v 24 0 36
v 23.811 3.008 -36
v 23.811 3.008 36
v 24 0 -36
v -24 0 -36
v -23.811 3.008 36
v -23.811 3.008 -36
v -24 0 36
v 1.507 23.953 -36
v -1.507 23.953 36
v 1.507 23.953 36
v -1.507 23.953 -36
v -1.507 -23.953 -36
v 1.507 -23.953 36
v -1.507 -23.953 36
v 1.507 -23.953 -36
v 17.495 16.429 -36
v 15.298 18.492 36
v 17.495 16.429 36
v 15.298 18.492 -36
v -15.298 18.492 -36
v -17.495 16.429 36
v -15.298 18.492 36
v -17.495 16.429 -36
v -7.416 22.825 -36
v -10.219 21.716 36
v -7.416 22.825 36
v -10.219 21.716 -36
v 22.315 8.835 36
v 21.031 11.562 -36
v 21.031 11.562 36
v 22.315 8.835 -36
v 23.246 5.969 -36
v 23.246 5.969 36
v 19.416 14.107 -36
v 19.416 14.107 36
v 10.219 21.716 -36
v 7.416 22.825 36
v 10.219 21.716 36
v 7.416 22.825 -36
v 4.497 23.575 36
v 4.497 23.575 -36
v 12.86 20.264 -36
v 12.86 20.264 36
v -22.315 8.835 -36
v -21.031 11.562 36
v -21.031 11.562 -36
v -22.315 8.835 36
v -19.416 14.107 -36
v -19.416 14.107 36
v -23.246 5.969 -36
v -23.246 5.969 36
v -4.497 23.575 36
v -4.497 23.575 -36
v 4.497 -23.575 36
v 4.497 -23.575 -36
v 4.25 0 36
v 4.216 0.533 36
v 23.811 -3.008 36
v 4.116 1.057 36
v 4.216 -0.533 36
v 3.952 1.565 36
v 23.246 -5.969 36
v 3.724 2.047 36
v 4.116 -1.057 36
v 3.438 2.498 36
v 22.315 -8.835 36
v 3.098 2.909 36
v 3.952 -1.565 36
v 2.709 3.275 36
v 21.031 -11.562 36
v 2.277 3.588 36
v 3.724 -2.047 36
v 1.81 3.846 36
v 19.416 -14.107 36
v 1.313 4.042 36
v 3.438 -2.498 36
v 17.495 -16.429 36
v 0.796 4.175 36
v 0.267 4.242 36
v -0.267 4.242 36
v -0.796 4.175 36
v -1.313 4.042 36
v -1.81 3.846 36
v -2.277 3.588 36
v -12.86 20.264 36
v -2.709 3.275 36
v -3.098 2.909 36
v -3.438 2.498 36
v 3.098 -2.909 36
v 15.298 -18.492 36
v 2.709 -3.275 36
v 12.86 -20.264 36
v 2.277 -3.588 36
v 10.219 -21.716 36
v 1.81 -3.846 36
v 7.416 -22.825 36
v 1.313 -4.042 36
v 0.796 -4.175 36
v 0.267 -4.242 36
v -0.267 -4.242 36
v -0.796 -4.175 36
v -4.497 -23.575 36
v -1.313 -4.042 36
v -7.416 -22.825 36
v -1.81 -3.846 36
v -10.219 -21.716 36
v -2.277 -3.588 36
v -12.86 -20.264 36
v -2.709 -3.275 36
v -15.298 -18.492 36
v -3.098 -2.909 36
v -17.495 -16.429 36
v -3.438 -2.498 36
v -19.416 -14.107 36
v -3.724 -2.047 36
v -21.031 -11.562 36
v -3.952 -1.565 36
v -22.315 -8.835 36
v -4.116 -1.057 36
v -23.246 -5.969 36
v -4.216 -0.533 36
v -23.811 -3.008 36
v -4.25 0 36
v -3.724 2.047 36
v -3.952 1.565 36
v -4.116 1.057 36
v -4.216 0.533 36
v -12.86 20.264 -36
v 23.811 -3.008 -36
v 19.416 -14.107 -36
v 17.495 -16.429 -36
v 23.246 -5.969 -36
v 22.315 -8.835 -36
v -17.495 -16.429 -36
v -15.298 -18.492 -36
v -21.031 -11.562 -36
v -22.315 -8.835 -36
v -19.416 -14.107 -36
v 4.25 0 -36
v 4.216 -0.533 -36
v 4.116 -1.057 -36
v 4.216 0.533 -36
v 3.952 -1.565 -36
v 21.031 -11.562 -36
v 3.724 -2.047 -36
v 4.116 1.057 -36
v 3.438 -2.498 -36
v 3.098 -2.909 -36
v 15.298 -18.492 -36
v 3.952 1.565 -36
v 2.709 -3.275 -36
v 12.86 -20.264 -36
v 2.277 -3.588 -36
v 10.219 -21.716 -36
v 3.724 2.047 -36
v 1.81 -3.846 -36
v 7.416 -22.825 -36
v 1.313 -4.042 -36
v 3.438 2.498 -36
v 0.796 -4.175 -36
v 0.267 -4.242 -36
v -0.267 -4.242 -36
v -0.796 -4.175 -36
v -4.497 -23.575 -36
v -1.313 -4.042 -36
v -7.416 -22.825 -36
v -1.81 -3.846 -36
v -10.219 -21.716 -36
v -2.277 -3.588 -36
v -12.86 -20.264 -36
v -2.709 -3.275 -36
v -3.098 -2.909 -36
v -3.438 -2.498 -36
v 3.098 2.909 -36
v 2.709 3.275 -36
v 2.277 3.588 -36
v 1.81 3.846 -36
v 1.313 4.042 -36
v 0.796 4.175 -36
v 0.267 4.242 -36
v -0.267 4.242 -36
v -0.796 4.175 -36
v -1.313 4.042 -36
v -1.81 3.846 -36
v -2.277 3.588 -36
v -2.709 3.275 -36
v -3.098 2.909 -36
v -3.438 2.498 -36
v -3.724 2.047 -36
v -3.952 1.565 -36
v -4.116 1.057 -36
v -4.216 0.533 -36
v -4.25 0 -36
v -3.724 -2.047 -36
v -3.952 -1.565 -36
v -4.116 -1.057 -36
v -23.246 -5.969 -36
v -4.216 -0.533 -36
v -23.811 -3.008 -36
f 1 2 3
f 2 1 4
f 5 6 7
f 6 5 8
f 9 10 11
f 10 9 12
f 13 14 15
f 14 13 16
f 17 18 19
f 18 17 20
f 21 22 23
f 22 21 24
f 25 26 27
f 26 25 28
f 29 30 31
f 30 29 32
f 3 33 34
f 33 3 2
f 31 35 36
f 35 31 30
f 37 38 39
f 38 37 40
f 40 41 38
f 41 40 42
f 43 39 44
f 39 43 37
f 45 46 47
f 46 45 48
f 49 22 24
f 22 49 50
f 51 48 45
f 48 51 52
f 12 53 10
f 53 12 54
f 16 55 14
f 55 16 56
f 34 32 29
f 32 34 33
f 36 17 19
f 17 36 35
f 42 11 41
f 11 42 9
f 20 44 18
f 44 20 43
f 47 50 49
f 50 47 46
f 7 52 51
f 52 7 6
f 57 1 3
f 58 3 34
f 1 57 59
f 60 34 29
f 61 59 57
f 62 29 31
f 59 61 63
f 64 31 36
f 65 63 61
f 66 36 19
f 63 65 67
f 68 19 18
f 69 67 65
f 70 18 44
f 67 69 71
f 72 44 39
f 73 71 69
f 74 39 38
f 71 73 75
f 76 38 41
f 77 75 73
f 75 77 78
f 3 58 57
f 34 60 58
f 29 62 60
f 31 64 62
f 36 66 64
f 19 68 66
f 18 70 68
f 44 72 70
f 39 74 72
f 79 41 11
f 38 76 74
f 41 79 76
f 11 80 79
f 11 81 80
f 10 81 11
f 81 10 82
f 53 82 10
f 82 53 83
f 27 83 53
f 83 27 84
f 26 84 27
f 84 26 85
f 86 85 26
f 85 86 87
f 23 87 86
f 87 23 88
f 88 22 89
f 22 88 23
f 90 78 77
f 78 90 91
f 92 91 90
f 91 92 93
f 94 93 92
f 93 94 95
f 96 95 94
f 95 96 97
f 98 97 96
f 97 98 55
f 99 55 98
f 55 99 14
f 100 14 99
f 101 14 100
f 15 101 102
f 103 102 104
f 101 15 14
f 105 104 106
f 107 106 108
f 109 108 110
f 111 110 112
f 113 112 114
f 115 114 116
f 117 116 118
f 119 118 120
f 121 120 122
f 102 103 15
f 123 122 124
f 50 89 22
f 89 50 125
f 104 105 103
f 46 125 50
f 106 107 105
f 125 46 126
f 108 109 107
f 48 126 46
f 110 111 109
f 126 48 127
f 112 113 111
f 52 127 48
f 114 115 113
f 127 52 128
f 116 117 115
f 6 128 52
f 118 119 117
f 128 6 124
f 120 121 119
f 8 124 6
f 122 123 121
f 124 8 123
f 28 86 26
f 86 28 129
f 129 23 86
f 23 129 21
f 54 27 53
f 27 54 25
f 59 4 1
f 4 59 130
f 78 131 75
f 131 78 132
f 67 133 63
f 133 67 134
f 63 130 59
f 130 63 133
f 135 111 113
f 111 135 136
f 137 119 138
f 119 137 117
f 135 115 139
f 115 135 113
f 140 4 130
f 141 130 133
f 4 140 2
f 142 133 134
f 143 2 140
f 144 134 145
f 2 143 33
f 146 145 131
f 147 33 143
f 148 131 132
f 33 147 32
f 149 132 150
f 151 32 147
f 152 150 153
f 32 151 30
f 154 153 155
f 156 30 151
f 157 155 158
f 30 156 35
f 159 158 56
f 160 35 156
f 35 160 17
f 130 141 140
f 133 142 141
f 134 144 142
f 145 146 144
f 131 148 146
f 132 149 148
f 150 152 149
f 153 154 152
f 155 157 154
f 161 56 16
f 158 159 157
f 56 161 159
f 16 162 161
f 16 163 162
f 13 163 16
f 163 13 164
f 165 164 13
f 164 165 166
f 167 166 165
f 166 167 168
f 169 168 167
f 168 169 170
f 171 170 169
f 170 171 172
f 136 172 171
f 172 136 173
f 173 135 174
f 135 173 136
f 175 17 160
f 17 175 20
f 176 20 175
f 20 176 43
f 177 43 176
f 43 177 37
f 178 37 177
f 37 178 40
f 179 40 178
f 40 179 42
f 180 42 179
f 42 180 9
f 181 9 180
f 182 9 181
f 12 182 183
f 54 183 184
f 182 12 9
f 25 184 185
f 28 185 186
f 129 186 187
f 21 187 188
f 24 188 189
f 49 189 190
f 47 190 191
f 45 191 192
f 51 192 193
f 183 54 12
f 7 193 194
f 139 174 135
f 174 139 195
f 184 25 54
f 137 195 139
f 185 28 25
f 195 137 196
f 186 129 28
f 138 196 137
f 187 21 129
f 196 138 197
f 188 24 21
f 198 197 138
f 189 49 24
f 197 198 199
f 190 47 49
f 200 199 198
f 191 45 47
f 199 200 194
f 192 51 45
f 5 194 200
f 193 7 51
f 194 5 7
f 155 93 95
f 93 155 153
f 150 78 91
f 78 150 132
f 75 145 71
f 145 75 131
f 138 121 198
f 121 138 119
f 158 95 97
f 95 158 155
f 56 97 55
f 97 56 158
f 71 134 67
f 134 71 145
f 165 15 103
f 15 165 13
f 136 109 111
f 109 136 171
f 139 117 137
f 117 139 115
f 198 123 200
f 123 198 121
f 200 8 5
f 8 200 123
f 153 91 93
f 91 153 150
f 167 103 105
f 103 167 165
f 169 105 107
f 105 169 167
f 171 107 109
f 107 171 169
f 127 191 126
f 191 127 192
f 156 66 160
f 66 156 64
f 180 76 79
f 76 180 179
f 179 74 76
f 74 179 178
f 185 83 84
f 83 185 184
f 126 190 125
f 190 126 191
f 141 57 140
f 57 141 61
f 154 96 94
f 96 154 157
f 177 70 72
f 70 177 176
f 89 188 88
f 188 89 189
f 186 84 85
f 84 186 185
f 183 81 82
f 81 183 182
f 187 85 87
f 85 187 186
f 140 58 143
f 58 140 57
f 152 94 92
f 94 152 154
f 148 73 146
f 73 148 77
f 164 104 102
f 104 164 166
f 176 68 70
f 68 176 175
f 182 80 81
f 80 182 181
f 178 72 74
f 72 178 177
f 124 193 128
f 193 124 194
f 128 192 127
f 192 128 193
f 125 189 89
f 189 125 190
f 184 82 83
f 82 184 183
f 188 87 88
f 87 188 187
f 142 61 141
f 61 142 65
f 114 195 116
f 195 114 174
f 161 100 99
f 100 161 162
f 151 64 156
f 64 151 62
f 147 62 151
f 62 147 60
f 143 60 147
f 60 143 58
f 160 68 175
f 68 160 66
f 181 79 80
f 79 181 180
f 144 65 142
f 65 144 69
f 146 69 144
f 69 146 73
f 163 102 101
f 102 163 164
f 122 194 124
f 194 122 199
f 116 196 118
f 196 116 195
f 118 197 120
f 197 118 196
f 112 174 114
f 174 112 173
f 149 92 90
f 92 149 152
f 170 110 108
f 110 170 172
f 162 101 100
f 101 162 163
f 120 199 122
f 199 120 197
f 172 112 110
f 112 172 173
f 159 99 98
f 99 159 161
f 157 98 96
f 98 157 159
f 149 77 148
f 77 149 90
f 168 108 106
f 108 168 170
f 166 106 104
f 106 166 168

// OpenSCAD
$fn = 50;


difference() {
	union() {
		translate(v = [0, 0, -36.0000000000]) {
			cylinder(h = 72, r = 24.0000000000);
		}
	}
	union() {
		translate(v = [0, 0, -100.0000000000]) {
			cylinder(h = 200, r = 4.2500000000);
		}
	}
}
